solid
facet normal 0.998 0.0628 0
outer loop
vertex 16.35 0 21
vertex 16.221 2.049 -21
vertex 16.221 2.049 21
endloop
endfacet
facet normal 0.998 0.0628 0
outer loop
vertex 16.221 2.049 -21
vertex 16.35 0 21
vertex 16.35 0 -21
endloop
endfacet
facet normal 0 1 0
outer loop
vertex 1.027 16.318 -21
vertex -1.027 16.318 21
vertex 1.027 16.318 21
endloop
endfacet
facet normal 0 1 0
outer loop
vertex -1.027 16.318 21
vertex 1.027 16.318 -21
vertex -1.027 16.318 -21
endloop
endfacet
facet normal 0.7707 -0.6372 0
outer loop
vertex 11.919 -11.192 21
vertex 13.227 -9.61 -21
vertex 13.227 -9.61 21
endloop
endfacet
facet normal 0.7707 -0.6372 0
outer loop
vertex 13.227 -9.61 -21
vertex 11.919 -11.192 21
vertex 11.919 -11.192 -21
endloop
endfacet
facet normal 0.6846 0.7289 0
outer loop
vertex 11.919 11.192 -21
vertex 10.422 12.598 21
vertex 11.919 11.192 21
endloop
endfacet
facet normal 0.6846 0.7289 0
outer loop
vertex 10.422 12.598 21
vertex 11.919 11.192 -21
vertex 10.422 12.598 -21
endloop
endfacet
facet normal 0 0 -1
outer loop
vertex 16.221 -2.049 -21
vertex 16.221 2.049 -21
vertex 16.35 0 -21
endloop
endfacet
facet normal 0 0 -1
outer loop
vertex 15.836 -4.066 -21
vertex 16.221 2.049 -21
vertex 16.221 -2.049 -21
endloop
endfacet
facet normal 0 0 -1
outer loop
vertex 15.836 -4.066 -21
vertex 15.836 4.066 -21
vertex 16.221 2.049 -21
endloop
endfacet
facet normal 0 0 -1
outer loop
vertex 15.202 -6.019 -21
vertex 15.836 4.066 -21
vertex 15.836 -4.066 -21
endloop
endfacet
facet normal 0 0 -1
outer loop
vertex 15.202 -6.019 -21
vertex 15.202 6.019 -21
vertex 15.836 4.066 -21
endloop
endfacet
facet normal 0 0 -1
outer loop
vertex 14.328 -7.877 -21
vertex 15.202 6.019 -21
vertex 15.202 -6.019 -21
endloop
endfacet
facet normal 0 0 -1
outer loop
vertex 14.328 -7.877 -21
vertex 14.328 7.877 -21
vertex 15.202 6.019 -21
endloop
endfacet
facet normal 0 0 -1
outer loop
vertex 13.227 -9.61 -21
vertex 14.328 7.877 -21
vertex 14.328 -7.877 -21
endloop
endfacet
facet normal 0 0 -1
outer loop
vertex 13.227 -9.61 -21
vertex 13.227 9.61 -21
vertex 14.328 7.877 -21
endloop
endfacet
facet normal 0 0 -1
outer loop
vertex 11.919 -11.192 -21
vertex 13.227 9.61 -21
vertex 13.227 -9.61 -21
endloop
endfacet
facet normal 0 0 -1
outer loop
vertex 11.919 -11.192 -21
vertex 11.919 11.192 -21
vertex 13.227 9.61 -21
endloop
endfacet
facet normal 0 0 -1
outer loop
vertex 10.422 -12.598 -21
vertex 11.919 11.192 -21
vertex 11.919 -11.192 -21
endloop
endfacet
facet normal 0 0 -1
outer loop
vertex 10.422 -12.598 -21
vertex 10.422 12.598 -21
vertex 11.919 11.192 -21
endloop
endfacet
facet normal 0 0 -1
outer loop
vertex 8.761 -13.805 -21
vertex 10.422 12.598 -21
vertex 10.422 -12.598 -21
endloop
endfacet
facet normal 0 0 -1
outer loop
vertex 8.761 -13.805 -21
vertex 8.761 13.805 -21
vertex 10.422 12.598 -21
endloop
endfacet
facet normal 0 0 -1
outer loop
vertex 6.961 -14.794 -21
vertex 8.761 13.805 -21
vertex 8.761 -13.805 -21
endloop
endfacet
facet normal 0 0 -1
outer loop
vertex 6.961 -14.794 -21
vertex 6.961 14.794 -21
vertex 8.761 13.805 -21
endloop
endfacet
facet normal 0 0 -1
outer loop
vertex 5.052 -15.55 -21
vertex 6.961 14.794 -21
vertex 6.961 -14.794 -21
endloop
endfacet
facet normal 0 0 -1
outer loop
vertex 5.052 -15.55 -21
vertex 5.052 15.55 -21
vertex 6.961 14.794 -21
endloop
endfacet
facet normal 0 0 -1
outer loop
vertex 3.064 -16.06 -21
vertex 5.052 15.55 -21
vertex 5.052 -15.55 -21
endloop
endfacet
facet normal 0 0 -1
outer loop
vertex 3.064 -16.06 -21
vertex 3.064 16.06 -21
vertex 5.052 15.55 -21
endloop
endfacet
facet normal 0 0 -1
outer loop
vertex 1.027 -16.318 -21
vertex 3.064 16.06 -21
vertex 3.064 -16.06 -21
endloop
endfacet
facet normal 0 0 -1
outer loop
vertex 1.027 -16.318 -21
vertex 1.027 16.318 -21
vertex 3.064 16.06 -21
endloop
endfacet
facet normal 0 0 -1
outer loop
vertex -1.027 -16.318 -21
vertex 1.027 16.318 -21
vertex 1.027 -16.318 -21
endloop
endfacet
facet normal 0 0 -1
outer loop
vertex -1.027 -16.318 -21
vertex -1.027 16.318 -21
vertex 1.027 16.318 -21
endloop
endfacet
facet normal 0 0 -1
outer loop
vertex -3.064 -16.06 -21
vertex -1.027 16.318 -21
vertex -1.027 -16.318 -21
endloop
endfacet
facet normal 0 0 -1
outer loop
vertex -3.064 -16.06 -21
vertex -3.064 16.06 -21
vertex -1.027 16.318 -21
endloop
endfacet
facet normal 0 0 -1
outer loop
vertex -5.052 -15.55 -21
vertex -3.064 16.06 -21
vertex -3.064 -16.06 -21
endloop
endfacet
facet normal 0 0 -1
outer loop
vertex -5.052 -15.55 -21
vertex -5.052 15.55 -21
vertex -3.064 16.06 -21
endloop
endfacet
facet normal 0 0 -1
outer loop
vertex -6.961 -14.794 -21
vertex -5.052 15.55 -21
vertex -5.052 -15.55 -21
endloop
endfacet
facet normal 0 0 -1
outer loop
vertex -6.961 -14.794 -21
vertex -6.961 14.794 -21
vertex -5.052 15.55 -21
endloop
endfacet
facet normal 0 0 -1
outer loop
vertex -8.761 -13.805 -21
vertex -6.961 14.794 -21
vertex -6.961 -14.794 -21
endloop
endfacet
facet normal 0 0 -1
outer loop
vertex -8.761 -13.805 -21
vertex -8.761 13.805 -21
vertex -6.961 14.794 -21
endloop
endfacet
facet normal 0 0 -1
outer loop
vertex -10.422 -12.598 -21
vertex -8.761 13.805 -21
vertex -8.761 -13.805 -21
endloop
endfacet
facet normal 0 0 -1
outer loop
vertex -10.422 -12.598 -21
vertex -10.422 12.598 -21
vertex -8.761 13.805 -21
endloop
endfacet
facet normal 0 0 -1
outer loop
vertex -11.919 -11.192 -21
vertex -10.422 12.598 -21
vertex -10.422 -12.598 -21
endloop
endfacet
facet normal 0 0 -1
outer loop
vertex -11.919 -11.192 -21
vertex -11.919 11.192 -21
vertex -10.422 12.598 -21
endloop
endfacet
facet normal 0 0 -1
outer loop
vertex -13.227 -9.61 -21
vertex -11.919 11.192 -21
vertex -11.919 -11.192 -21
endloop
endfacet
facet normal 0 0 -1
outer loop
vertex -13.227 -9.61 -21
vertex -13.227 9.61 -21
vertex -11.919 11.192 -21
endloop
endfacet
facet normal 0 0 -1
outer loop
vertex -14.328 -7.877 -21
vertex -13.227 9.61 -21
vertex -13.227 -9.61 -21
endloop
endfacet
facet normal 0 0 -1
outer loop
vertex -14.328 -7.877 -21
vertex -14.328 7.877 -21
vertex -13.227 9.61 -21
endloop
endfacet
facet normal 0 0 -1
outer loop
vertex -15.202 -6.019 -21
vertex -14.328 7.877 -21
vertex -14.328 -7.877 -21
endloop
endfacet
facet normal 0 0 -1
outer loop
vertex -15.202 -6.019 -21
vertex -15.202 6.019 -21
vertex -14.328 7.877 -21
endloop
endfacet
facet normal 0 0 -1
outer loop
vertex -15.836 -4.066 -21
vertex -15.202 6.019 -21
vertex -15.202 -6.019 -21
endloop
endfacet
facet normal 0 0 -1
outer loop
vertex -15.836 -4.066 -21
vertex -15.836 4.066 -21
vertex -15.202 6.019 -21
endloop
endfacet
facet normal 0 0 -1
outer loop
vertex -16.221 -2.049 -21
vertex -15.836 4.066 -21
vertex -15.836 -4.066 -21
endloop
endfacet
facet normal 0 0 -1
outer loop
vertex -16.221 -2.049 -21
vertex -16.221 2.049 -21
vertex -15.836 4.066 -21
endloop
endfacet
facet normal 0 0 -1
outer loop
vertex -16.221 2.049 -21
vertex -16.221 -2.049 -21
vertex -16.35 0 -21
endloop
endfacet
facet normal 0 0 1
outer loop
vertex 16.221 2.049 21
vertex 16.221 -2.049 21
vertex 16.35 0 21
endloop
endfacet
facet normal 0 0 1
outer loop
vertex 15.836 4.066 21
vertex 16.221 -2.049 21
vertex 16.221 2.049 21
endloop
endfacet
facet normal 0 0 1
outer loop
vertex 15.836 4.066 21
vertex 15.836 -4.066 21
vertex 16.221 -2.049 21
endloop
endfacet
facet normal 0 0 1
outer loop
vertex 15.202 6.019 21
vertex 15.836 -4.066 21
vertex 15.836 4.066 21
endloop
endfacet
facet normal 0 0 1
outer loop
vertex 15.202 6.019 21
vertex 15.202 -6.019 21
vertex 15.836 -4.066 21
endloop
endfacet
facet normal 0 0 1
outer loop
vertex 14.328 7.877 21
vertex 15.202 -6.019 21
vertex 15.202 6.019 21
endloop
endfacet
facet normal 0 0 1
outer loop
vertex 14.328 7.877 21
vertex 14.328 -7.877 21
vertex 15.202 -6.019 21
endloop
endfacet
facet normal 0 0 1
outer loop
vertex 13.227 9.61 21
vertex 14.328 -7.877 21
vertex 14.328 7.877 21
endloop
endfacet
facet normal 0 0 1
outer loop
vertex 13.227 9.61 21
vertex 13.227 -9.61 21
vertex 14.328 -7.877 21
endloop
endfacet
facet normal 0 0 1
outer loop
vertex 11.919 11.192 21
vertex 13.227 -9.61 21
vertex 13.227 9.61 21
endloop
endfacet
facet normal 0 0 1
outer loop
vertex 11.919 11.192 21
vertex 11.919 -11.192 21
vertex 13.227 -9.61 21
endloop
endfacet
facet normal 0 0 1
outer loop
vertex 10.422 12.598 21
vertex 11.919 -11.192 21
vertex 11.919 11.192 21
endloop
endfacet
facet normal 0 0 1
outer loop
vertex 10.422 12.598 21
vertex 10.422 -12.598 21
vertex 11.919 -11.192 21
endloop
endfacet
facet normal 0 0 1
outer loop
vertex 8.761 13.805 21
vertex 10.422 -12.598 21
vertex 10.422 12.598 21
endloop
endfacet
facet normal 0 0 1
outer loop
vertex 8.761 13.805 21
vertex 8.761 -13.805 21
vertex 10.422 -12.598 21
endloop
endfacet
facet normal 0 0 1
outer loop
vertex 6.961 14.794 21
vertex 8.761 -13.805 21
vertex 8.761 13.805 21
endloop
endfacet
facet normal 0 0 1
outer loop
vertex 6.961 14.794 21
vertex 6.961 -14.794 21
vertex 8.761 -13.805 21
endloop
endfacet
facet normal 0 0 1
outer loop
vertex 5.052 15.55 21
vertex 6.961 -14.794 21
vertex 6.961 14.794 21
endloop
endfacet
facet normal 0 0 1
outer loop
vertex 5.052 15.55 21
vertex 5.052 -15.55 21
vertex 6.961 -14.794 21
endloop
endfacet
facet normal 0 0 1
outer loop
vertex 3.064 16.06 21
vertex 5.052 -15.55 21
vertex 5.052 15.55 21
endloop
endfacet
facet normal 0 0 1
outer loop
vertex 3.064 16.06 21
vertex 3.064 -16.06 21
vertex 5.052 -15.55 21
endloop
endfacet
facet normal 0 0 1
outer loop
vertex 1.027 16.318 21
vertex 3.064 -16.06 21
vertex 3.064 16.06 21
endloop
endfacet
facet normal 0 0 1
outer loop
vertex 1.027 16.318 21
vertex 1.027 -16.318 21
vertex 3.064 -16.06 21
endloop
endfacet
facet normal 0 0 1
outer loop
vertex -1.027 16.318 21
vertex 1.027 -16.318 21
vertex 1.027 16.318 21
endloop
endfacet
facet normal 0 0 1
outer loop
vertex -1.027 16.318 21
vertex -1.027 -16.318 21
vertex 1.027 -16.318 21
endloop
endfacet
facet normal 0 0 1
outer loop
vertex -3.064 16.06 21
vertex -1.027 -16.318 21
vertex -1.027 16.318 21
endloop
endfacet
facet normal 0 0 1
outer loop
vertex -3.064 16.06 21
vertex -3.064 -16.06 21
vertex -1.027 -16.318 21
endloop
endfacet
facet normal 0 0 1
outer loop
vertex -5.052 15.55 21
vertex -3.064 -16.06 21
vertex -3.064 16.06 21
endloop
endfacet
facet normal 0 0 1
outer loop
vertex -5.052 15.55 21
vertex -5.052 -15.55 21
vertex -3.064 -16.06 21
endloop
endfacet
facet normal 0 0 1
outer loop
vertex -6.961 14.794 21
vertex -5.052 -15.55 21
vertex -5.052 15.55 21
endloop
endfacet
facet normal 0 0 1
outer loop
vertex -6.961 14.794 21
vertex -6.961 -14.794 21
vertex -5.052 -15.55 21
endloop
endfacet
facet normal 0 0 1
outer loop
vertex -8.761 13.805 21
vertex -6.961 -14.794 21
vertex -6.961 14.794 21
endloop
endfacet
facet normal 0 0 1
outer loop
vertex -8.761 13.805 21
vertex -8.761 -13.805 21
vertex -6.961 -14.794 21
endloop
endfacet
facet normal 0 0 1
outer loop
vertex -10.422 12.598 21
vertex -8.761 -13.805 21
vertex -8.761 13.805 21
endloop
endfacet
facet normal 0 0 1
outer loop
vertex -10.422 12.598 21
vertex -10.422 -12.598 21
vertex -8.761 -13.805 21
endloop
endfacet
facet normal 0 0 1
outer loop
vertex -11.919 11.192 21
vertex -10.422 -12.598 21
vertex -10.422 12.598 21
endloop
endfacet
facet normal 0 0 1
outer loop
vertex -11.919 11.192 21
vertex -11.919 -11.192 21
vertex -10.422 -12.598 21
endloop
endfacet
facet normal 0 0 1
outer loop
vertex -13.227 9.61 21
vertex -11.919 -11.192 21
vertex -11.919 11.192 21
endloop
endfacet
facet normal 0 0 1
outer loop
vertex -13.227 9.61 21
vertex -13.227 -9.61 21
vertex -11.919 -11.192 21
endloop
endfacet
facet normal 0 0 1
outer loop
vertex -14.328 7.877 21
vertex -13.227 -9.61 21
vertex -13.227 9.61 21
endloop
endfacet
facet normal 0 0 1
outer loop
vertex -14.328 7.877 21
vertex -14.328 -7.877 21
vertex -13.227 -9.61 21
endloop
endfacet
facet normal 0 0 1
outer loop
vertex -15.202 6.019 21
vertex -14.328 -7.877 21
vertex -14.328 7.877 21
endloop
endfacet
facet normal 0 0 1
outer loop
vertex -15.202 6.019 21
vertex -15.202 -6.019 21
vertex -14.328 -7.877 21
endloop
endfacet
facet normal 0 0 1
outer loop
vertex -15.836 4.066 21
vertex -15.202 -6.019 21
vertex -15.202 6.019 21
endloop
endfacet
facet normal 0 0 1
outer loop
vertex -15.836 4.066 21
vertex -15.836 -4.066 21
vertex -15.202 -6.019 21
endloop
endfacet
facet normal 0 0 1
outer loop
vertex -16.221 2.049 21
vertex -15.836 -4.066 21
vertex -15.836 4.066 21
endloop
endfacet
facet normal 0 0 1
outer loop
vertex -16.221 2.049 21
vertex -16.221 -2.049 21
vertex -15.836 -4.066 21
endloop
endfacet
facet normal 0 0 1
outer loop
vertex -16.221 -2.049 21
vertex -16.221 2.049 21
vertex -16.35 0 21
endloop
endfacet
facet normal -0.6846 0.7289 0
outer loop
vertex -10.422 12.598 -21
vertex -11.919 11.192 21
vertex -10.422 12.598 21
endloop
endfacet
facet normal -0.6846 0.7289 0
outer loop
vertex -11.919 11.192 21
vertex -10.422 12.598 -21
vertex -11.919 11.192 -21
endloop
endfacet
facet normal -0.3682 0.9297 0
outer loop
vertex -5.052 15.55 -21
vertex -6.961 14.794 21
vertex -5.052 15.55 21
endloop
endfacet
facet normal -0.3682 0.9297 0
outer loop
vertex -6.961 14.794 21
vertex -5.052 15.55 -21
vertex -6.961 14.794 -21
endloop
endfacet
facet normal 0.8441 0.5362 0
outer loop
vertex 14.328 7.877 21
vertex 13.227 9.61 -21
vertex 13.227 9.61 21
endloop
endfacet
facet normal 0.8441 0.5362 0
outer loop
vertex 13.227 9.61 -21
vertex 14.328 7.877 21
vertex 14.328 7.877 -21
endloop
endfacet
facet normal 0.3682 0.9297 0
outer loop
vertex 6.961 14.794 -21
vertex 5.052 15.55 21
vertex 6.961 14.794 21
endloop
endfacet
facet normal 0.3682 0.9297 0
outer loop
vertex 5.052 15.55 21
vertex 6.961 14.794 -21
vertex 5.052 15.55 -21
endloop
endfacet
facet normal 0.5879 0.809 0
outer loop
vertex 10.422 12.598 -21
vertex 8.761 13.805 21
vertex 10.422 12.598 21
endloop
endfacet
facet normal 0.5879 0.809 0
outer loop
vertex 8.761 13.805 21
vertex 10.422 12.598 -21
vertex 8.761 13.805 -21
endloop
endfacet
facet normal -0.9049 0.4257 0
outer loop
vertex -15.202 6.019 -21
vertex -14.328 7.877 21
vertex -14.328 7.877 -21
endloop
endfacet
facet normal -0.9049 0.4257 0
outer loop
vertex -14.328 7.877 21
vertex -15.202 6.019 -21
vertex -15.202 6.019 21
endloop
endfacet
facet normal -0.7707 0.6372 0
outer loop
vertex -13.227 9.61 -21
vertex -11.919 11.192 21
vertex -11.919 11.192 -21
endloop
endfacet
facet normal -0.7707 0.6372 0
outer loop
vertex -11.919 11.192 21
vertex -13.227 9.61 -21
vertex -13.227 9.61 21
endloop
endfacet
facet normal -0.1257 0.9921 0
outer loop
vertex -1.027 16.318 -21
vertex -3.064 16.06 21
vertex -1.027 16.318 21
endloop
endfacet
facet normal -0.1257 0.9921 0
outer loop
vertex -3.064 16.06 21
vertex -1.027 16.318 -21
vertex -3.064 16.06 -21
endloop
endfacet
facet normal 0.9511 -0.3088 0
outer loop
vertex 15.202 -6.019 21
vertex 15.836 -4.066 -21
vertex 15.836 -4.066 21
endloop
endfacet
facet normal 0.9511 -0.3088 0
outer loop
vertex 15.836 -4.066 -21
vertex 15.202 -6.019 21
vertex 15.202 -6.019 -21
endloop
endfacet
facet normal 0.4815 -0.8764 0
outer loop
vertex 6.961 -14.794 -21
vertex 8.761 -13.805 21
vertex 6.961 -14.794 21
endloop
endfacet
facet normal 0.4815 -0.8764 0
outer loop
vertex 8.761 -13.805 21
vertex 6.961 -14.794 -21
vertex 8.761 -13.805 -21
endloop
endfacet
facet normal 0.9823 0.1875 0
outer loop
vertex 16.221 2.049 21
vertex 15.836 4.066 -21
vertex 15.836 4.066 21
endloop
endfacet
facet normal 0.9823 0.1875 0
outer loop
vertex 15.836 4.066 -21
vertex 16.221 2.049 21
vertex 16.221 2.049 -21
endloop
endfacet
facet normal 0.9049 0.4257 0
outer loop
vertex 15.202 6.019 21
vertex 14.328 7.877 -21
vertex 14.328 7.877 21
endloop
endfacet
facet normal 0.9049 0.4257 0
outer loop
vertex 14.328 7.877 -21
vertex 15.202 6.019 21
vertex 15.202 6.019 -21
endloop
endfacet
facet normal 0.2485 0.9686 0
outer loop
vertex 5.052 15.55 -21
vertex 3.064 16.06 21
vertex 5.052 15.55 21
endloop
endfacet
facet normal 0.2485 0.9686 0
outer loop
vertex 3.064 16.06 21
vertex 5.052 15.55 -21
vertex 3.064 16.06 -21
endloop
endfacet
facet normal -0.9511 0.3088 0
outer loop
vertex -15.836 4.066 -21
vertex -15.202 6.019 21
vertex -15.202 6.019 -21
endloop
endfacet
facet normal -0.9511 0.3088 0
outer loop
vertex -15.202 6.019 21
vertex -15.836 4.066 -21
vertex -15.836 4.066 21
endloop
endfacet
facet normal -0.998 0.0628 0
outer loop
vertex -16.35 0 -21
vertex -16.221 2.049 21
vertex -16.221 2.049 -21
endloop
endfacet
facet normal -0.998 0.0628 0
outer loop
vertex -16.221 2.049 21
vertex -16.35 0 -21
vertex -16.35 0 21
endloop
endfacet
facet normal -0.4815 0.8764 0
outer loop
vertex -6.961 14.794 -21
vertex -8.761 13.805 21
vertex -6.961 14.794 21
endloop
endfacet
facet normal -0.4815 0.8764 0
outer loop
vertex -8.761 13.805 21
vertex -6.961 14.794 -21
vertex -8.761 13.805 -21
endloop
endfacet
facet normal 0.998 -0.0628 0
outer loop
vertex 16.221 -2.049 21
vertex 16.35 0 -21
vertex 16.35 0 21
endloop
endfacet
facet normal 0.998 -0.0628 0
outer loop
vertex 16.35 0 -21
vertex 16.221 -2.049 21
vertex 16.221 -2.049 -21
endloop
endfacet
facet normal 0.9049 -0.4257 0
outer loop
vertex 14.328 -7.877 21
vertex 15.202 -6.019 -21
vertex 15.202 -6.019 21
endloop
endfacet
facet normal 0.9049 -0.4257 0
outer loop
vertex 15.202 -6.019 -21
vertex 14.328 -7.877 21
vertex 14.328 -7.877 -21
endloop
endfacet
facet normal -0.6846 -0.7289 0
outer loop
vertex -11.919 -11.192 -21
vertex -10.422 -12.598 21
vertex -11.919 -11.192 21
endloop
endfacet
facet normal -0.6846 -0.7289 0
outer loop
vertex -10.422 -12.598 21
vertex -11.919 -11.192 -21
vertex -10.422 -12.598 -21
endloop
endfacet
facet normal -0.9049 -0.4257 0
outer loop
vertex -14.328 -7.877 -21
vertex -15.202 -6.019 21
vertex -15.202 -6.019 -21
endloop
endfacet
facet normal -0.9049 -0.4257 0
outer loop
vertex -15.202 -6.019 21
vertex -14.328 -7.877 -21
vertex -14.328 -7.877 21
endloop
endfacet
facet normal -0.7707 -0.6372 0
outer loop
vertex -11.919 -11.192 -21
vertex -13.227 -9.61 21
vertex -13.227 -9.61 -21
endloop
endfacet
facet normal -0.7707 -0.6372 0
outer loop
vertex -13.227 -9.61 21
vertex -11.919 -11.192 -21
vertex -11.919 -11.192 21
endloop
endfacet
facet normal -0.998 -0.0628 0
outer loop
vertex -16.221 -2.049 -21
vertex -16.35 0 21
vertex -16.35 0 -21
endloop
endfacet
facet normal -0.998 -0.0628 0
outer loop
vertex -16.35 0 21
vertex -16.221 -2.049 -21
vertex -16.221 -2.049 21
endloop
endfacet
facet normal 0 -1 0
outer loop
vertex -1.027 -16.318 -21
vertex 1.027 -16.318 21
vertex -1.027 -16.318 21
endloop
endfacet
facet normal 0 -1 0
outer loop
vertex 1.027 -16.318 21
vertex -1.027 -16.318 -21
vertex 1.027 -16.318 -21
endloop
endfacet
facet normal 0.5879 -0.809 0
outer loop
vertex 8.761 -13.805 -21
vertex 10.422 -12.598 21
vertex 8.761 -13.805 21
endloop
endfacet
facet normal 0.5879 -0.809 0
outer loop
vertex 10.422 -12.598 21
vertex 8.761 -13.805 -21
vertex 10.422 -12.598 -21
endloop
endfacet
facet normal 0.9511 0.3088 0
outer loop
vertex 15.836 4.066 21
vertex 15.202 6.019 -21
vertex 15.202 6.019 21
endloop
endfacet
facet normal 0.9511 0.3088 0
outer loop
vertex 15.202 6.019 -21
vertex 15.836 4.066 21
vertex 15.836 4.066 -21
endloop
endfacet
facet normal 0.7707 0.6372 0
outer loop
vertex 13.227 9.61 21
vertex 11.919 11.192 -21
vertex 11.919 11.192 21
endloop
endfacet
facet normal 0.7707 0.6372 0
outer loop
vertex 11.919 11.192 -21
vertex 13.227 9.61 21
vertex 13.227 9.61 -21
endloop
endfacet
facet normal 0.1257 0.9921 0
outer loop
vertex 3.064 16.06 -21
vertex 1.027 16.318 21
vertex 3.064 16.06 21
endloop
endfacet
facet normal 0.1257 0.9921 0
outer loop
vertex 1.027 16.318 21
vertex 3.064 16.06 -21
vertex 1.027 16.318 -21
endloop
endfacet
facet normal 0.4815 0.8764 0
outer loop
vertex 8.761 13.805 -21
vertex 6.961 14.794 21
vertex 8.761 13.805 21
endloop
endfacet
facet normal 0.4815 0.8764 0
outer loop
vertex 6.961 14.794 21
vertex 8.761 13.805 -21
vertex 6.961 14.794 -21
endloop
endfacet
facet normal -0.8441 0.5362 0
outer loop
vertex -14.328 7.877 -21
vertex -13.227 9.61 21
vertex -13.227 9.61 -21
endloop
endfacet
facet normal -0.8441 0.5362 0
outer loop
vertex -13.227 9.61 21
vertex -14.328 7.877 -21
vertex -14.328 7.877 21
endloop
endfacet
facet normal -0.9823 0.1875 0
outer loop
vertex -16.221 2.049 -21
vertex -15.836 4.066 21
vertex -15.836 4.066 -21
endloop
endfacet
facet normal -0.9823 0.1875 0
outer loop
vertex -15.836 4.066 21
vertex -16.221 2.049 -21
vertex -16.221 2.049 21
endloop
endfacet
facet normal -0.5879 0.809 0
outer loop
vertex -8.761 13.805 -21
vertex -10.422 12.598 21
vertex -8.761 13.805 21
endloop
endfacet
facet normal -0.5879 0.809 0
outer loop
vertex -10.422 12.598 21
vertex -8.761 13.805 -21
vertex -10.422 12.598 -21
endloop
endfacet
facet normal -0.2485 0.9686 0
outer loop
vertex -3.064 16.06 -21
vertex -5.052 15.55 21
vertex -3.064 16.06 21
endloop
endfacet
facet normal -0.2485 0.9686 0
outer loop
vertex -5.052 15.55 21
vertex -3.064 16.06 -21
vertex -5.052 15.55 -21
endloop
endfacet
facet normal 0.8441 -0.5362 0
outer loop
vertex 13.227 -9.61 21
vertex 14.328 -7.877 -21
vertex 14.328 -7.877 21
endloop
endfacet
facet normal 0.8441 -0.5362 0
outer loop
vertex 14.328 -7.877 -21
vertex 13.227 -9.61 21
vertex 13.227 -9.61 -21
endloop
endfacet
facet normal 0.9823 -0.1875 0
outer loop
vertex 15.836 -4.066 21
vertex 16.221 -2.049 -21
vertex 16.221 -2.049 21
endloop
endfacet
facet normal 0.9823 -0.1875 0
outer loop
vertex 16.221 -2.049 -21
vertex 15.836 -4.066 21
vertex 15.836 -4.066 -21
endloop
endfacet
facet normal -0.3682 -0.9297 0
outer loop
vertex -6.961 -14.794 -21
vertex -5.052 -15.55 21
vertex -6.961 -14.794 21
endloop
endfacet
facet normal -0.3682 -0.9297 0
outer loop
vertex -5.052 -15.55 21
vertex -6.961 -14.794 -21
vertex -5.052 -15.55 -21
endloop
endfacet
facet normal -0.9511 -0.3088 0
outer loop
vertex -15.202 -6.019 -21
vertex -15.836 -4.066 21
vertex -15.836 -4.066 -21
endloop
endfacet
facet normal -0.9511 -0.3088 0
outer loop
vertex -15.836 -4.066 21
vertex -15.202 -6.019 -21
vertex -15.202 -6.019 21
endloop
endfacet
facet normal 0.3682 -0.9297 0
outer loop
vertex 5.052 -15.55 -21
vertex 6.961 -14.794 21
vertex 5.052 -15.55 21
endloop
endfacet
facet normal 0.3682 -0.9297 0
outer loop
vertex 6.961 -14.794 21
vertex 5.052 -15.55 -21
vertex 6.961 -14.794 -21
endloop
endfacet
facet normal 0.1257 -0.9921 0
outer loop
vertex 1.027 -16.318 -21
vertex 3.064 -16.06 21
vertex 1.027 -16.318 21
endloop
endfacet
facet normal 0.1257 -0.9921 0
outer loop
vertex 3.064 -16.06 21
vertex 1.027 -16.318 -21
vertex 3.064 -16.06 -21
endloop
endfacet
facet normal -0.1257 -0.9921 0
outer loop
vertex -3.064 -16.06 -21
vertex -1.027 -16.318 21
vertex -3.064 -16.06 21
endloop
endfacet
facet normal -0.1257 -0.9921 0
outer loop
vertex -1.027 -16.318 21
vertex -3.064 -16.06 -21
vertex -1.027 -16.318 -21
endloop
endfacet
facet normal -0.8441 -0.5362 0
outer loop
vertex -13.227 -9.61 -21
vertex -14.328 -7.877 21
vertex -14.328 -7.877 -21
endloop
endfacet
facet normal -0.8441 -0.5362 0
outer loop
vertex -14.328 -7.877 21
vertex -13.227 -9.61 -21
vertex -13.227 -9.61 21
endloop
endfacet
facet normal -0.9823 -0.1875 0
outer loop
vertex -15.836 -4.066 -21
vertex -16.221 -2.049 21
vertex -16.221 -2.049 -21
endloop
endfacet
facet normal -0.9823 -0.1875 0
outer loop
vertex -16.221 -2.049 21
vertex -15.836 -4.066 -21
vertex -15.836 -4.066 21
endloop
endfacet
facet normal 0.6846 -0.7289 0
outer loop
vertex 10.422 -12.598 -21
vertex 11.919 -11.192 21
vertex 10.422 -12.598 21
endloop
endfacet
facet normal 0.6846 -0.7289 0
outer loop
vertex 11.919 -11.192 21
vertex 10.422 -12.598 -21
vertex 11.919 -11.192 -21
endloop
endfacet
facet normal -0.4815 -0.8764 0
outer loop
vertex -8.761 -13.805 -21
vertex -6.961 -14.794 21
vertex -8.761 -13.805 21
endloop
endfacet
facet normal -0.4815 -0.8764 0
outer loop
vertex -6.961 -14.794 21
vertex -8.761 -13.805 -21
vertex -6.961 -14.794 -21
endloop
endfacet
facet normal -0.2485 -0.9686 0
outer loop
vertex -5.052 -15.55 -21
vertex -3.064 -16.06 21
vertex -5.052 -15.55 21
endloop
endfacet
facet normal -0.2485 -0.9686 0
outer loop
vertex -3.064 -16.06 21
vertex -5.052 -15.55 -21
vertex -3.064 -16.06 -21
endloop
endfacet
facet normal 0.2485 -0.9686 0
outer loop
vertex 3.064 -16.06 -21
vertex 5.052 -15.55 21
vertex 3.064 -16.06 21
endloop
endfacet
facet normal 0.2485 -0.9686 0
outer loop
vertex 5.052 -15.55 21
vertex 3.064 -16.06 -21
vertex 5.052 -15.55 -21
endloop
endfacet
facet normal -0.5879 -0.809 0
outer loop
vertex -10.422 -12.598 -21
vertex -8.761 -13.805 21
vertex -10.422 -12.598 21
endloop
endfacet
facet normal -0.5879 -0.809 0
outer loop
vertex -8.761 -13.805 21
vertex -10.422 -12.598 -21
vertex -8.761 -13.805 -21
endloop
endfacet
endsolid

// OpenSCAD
$fn = 50;


difference() {
	union() {
		translate(v = [0, 0, -21.0000000000]) {
			cylinder(h = 42, r = 16.3500000000);
		}
	}
	union() {
		translate(v = [0, 0, -100.0000000000]) {
			cylinder(h = 200, r = 0);
		}
	}
}
